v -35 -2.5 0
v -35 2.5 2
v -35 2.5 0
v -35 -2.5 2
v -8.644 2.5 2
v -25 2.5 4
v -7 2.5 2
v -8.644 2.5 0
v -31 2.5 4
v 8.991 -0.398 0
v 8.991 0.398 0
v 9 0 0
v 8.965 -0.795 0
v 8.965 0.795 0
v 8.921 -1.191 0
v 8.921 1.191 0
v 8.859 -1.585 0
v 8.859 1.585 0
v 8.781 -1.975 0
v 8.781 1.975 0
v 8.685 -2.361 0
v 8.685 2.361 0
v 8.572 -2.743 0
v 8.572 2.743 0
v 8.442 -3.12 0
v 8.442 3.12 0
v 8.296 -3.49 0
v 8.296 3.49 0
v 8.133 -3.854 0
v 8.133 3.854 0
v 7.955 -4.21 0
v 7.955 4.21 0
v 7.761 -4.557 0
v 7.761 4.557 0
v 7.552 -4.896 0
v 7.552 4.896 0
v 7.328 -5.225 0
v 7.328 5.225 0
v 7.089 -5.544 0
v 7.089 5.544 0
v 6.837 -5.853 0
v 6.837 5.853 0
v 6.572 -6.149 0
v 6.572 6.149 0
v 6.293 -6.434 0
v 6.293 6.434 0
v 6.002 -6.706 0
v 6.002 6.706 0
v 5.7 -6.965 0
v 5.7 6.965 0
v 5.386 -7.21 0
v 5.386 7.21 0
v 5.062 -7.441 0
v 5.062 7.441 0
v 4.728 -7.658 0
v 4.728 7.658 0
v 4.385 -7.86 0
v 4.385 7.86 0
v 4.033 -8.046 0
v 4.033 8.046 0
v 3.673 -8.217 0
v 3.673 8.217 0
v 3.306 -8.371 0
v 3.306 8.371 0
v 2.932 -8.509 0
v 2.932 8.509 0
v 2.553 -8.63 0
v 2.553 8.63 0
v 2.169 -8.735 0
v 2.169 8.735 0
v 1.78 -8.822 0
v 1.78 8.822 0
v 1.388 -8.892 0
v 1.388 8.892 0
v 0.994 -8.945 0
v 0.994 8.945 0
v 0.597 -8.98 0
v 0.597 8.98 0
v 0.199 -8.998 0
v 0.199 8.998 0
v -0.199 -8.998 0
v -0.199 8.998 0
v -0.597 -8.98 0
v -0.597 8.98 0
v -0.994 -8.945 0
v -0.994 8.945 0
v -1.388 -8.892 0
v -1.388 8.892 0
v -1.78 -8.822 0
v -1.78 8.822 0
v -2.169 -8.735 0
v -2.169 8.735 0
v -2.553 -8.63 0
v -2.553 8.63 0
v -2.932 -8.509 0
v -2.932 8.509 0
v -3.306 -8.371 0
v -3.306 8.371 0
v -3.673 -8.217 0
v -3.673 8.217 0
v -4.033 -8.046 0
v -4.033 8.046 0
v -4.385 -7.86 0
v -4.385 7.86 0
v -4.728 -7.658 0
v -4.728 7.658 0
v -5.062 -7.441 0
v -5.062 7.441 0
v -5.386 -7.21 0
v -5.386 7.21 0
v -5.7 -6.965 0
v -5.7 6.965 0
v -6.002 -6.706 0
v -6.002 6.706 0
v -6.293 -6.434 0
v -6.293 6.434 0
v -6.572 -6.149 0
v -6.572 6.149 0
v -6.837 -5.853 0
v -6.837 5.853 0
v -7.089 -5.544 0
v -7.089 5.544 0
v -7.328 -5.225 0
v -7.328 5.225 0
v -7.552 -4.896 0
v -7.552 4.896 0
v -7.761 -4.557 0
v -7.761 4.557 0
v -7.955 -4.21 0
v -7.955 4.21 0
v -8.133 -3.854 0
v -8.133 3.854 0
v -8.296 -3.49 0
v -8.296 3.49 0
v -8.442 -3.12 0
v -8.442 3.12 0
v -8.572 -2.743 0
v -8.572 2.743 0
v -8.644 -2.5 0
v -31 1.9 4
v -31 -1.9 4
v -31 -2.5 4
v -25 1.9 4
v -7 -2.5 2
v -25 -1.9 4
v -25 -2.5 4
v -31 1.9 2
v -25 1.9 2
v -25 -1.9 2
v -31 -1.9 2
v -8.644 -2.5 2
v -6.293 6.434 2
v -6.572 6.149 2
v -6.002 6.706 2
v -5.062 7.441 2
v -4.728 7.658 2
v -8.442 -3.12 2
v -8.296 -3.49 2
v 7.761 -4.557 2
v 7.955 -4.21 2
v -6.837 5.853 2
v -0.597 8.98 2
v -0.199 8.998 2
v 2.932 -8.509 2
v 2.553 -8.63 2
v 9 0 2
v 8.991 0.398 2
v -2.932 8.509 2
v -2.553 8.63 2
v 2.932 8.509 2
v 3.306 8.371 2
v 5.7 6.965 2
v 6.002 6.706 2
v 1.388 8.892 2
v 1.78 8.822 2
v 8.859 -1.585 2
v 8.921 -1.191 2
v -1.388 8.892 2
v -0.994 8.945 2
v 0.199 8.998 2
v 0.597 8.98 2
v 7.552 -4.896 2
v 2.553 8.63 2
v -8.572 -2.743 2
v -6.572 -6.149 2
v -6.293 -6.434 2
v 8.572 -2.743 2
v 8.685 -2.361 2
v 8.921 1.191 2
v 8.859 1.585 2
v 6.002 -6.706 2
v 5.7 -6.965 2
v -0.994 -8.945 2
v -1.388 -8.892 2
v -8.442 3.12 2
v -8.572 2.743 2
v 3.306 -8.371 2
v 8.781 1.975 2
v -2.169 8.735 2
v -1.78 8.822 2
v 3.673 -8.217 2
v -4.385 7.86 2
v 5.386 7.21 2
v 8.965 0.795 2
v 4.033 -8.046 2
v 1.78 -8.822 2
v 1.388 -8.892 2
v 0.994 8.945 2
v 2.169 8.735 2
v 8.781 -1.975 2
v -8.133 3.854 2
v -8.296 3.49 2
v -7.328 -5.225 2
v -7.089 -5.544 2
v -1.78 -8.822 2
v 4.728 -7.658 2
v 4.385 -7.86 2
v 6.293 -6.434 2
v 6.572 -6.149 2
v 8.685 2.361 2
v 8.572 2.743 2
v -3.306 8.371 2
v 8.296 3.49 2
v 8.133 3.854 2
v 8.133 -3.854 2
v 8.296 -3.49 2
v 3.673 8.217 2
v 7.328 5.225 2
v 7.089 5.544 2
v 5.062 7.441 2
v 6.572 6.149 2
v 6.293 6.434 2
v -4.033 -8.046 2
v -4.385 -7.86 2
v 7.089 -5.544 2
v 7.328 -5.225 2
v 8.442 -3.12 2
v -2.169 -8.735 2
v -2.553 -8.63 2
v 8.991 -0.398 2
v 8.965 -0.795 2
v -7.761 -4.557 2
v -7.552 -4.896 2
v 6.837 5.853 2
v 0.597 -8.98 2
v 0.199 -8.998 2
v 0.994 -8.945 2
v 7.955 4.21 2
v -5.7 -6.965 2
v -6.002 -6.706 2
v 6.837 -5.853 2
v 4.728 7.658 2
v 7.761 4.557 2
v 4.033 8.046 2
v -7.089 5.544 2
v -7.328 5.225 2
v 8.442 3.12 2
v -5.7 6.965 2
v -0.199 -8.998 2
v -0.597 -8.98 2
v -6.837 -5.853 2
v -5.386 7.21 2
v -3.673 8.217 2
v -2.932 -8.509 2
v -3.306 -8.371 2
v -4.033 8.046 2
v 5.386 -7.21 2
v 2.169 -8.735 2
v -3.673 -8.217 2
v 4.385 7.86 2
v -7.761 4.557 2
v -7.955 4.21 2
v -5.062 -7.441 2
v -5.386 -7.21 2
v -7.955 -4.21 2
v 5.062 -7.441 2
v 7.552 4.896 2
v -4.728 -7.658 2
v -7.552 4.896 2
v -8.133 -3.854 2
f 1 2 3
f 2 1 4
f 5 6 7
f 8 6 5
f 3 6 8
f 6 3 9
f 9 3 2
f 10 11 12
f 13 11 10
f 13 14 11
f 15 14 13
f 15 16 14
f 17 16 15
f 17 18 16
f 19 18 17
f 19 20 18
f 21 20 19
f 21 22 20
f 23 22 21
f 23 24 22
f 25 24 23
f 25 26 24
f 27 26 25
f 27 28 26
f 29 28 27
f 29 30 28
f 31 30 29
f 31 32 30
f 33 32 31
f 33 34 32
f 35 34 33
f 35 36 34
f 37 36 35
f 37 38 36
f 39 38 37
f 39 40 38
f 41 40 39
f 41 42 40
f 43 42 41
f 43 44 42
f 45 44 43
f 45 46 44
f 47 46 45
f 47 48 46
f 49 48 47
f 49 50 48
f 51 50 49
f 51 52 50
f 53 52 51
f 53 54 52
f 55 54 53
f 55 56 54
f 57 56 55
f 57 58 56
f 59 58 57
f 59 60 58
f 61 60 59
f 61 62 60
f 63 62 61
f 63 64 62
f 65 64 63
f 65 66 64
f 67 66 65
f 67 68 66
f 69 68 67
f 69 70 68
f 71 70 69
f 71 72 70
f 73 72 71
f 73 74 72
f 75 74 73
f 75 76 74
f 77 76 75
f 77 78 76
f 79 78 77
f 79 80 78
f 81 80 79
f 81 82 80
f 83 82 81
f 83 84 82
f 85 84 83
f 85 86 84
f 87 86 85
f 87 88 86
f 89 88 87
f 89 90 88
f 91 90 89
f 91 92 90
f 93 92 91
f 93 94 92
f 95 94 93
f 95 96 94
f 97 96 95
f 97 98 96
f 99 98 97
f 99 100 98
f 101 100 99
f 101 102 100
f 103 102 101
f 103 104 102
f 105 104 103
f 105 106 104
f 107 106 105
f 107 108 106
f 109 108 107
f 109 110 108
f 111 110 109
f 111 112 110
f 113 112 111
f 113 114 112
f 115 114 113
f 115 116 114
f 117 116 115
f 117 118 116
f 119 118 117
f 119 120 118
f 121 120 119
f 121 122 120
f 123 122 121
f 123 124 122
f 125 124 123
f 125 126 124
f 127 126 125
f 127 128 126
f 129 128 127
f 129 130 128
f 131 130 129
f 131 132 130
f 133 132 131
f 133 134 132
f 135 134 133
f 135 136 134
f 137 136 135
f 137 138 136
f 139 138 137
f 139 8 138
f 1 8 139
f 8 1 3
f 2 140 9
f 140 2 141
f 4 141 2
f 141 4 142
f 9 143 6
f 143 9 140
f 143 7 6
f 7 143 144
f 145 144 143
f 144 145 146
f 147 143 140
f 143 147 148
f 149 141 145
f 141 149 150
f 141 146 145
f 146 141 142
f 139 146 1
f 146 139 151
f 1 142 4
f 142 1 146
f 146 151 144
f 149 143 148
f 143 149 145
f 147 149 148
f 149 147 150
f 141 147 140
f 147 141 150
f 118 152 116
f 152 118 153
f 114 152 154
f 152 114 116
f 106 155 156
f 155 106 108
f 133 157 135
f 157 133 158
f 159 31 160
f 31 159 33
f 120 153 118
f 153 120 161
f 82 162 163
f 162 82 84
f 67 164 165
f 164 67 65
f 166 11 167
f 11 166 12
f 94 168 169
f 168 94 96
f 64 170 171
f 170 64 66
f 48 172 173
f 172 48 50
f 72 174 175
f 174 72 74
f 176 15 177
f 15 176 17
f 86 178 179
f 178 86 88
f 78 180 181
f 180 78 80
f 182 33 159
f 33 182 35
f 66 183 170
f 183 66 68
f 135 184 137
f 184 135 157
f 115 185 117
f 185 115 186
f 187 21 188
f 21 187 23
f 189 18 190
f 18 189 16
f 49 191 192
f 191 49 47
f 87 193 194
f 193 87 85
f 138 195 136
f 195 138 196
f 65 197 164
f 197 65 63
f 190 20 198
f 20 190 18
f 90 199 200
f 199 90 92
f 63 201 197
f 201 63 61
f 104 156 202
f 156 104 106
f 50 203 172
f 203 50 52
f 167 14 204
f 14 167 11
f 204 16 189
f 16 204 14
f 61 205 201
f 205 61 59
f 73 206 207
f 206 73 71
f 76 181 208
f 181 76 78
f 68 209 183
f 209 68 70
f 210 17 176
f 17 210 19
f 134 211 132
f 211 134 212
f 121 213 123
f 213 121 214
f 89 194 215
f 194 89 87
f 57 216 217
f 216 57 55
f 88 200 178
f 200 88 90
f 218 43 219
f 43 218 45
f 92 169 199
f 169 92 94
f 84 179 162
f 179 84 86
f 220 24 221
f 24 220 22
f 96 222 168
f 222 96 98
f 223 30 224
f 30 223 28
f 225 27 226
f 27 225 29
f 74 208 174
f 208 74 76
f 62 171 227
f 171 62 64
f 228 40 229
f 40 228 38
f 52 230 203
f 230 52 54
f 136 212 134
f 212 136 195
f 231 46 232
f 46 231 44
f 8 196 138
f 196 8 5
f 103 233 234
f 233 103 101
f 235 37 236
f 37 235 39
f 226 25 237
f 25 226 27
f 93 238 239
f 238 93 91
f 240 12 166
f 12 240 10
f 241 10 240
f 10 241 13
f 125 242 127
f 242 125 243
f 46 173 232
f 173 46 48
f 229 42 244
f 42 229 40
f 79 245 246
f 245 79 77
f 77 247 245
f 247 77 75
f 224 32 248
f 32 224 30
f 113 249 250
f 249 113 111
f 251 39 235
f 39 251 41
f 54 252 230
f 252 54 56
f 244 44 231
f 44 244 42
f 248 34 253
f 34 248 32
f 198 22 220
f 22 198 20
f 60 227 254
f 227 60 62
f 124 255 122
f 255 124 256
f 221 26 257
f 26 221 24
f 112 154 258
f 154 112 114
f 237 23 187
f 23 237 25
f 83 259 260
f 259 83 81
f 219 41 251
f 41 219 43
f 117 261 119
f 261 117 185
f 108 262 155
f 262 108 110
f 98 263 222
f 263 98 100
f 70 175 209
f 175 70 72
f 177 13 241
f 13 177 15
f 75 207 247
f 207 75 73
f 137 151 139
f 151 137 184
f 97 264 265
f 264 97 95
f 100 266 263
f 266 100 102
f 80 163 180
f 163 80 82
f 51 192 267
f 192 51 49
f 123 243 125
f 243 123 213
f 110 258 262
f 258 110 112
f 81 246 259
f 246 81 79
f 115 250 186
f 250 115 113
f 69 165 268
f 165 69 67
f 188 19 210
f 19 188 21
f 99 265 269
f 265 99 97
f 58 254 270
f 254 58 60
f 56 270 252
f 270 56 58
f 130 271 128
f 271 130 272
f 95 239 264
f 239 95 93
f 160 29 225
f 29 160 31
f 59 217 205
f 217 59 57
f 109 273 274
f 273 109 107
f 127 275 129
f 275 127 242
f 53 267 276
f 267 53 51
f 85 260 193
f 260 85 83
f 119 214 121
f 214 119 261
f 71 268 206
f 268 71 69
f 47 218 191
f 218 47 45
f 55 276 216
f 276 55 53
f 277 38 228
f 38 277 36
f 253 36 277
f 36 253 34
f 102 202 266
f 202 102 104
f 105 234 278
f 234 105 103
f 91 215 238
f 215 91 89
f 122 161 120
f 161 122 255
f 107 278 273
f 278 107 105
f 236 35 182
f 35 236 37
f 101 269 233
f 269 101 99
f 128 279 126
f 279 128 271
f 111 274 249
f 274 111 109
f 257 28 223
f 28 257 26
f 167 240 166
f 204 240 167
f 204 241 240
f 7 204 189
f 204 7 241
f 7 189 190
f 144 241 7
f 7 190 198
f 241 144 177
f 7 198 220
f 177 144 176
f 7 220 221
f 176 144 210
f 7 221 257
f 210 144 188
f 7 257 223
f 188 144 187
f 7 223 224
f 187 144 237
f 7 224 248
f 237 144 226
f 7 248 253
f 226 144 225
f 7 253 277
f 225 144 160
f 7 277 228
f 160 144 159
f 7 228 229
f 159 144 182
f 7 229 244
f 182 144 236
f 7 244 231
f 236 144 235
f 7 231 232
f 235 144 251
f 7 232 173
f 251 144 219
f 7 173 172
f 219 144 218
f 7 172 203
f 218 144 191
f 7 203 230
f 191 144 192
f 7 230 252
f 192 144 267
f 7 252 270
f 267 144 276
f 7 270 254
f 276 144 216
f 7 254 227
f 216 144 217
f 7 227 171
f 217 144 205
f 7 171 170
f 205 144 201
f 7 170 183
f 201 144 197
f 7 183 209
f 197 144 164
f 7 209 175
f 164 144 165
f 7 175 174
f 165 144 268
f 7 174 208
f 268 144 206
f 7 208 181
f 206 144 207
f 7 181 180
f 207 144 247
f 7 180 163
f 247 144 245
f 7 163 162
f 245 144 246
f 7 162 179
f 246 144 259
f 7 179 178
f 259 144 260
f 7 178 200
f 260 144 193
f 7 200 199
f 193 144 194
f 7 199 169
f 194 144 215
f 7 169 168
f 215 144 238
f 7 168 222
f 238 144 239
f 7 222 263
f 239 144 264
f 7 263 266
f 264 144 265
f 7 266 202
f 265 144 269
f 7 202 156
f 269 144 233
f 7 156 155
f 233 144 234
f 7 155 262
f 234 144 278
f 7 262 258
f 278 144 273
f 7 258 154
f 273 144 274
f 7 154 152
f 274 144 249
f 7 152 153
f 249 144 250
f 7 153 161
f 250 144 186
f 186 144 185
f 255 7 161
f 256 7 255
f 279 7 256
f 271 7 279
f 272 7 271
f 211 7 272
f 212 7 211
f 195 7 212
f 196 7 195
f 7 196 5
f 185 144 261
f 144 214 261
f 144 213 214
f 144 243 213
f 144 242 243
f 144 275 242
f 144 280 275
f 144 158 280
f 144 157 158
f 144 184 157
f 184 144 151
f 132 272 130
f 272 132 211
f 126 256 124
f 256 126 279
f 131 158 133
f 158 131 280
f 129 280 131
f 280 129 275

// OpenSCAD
$fs = 0.4;
$fa = 1;

x1 = 0;
x2 = 4;
x3 = 10;
x4 = 28;

y1 = 0;
y2 = 2;
y3 = 4;

skin_thickness = 0.6;
switcher_thickness = 5;
holder_d = 18;

module main_profile() {
  a = [x1,y1];
  b = [x1,y2];
  c = [x2,y3];
  d = [x2,y2];
  e = [x3,y2];
  f = [x3,y3];
  g = [x4,y2];
  h = [x4,y1];
  
  polygon([
    a,b,c,d,e,f,g,h
  ]);
}

module edge_profile() {
  a = [x1,y1];
  b = [x1,y2];
  c = [x2,y3];
  d = [x2,y2];
  e = [x3,y2];
  f = [x3,y3];
  g = [x4,y2];
  h = [x4,y1];
  
  polygon([
    a,b,c,f,g,h
  ]);
}

module body() {
  translate([-x4 - holder_d/2+2,switcher_thickness/2,0])
  rotate([90,0,0]) {
    linear_extrude(height=skin_thickness)
      edge_profile();
    translate([0,0,switcher_thickness-skin_thickness])
      linear_extrude(height=skin_thickness)
        edge_profile();
    linear_extrude(height=switcher_thickness)
      main_profile();
  }
  cylinder(d=holder_d, h=y2);
}

body();
